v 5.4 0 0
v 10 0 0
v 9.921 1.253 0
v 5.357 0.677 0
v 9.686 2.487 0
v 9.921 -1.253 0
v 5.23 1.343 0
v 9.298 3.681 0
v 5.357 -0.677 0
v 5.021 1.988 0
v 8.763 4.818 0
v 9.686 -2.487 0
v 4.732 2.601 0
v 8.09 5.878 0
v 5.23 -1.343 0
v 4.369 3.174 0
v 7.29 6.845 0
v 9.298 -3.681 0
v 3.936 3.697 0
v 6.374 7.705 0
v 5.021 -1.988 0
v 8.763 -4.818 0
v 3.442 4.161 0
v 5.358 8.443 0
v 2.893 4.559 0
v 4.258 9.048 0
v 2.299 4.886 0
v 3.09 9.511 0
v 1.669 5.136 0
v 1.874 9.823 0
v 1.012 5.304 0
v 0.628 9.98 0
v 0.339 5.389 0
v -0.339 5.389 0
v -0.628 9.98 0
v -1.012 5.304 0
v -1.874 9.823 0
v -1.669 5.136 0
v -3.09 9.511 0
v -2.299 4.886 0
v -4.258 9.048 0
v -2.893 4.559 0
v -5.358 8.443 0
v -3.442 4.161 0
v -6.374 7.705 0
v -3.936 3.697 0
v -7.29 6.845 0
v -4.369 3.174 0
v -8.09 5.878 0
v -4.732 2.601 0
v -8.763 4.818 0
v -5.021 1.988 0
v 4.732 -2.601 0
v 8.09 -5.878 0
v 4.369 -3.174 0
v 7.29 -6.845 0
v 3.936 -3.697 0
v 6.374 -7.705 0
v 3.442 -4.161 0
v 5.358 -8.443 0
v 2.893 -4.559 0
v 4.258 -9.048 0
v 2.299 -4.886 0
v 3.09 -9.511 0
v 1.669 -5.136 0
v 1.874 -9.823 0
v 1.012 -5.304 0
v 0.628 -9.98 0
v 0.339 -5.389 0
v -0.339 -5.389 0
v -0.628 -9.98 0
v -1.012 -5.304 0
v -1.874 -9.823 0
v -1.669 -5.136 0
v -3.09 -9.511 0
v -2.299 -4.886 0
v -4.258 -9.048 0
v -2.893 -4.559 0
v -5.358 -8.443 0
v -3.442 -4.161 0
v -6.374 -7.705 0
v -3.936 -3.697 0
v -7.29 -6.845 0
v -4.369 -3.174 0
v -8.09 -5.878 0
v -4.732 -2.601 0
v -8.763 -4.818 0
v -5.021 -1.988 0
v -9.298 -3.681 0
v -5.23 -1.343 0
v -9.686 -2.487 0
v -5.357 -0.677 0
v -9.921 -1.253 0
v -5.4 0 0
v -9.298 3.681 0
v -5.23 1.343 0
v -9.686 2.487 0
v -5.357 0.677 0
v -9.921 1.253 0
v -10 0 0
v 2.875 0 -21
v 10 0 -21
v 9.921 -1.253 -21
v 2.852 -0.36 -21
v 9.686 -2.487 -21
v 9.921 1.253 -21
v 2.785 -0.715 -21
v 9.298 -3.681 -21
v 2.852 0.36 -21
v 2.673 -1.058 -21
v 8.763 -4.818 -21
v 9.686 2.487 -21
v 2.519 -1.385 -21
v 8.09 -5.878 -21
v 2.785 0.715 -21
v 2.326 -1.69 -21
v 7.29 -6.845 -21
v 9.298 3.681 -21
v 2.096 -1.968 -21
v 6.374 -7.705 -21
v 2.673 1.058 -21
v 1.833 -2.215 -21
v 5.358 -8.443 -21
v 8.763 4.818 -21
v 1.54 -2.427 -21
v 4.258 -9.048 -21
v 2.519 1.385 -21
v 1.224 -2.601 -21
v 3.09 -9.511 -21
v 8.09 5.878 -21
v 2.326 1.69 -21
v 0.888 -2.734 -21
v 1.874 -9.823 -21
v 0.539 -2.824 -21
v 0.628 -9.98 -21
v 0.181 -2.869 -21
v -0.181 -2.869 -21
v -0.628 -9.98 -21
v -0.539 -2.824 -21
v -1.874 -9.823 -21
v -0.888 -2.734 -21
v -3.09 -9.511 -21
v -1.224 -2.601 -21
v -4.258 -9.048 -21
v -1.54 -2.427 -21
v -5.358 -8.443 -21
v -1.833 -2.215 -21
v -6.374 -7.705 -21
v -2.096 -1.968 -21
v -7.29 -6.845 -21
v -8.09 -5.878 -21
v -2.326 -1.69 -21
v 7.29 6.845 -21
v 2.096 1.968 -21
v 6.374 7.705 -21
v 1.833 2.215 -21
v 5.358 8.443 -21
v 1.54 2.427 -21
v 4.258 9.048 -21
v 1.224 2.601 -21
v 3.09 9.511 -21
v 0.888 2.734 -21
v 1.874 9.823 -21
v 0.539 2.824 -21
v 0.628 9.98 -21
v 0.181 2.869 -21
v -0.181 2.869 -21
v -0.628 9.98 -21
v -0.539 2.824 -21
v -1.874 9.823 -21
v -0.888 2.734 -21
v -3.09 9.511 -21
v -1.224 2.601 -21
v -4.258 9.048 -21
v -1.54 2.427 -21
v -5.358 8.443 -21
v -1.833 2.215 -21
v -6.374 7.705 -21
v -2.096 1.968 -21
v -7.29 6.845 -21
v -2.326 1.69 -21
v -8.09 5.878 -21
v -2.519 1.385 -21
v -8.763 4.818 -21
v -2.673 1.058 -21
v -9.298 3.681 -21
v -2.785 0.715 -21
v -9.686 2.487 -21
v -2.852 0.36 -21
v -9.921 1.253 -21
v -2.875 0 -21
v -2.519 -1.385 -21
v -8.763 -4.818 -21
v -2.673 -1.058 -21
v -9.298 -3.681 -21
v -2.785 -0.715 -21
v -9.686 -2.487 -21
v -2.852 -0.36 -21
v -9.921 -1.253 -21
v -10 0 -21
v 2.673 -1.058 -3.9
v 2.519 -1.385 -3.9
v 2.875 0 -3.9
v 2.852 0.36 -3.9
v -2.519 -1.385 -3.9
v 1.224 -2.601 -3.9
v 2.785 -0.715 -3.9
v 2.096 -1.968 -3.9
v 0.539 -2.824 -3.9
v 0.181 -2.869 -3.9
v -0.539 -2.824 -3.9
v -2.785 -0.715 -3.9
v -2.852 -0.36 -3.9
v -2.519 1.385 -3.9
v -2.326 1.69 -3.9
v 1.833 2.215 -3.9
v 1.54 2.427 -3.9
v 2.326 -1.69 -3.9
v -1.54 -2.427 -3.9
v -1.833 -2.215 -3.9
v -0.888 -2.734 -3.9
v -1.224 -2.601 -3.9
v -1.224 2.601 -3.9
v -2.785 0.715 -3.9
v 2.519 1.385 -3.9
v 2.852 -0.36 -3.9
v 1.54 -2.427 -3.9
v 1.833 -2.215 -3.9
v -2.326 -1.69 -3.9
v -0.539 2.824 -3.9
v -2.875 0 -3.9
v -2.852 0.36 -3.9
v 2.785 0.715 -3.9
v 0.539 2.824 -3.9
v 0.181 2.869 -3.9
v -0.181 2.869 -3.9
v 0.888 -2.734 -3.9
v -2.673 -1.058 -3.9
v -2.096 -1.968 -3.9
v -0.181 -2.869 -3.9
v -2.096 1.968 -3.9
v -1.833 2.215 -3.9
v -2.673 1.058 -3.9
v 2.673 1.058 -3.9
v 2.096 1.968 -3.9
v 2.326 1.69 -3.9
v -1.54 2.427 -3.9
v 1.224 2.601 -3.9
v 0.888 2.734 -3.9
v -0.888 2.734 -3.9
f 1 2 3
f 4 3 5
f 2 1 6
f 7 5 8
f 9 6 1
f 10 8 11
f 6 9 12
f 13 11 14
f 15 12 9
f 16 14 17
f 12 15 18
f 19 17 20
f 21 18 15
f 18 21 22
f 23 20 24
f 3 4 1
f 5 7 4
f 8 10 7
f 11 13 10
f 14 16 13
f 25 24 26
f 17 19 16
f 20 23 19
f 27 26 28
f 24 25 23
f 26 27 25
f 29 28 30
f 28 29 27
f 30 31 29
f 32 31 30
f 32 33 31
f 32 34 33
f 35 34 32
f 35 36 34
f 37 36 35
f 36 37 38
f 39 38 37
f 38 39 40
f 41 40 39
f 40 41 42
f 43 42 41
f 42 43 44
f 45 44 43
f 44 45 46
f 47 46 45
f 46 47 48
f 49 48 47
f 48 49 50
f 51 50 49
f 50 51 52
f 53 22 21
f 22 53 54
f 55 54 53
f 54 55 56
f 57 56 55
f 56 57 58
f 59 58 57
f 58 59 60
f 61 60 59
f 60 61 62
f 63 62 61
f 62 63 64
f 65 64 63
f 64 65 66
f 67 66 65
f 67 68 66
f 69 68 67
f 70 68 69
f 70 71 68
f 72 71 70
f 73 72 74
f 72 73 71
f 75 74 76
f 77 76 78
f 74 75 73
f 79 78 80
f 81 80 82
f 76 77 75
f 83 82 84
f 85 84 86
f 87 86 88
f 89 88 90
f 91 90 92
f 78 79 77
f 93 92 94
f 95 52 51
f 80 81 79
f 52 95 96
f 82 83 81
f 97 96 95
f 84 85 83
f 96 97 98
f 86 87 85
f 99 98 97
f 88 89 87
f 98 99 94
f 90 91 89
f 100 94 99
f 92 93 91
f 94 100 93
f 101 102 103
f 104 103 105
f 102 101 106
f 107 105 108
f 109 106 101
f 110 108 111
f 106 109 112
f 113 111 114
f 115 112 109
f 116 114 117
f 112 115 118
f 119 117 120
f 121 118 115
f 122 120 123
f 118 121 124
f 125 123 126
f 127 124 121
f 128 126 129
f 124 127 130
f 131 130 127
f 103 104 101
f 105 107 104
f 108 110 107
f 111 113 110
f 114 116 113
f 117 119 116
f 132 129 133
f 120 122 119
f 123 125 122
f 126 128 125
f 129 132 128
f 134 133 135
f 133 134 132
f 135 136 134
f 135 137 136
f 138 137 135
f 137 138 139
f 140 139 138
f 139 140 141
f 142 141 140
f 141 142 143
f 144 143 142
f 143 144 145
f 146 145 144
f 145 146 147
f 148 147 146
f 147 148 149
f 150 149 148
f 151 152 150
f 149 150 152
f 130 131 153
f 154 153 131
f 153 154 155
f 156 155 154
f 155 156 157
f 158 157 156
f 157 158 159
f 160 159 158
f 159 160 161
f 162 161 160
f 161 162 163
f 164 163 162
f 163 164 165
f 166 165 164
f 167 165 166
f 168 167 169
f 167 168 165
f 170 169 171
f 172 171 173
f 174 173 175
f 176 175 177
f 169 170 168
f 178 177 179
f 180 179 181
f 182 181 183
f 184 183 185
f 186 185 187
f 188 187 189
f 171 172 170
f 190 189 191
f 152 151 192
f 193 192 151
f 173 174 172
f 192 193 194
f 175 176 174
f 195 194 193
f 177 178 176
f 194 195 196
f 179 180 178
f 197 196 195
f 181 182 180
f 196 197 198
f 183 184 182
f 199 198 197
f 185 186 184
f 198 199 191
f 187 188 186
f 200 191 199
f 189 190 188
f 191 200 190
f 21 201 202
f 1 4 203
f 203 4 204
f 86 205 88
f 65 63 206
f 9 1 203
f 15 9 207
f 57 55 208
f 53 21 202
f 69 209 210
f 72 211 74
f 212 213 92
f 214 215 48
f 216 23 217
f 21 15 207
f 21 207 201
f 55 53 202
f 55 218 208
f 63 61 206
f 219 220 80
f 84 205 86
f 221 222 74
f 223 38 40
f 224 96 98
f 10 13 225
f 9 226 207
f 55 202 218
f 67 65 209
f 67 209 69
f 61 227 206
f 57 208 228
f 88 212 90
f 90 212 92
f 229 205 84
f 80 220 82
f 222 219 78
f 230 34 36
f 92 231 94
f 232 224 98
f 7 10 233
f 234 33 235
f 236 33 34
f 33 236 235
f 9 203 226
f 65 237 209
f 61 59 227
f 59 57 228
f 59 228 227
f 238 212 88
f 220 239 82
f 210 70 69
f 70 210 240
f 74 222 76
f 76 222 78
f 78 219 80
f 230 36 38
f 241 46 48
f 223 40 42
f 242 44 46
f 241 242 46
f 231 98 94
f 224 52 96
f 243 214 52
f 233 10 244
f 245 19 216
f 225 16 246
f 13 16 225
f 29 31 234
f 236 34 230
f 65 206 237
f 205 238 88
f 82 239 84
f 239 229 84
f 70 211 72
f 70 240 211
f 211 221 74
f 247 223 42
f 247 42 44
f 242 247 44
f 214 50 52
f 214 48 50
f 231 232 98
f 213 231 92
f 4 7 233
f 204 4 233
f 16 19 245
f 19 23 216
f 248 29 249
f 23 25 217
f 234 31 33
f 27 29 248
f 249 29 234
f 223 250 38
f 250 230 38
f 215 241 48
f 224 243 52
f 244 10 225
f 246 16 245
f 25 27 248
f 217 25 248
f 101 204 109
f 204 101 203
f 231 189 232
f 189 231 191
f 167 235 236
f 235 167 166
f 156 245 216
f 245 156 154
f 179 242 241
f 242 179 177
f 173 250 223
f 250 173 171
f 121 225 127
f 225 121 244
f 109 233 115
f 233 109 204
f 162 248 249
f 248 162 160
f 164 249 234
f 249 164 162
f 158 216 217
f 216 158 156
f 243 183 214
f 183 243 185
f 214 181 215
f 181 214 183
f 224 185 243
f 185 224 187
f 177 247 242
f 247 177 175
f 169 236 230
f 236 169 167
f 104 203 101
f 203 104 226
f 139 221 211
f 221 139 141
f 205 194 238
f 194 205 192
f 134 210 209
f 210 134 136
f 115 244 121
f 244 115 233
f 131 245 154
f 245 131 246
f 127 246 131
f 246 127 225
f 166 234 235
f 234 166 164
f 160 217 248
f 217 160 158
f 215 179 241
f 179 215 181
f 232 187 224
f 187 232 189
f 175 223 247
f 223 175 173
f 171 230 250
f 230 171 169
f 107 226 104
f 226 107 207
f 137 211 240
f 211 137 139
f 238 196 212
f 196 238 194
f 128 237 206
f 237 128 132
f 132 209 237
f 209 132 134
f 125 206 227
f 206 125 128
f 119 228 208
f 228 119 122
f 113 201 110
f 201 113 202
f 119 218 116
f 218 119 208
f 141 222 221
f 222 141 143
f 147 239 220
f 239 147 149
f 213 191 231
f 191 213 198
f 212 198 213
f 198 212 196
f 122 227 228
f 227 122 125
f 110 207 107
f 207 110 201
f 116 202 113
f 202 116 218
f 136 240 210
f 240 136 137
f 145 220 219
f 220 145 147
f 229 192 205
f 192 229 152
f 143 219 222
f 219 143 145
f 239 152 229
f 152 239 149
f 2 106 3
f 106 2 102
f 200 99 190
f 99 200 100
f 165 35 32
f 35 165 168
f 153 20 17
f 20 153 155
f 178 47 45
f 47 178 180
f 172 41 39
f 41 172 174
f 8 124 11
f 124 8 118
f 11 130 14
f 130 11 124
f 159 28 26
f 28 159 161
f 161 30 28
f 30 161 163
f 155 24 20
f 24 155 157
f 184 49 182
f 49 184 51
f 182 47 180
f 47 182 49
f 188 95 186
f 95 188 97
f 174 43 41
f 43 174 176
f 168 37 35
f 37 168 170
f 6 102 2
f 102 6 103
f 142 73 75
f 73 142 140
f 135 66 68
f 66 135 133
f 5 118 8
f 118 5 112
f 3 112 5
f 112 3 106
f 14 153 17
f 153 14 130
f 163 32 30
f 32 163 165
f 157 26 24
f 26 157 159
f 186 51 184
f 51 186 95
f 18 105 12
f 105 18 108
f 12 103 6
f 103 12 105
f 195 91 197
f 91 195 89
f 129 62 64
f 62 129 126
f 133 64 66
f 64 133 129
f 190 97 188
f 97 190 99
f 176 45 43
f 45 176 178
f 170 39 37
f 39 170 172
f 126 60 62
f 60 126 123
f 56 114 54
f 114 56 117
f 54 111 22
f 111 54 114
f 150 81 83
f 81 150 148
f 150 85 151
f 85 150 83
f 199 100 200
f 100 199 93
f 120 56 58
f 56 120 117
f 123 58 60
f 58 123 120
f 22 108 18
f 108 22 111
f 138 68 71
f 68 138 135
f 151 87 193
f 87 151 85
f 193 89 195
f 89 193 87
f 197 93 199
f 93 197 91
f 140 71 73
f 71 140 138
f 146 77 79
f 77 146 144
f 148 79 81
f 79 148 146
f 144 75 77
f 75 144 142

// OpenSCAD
$fn = 50;


difference() {
	union() {
		translate(v = [0, 0, -21.0000000000]) {
			cylinder(h = 21, r = 10.0000000000);
		}
		cylinder(h = 0, r = 16.0000000000);
	}
	union() {
		translate(v = [0, 0, 0]) {
			rotate(a = [0, 0, 0]) {
				difference() {
					union() {
						#translate(v = [0, 0, -21.0000000000]) {
							cylinder(h = 21, r = 2.6000000000);
						}
						#translate(v = [0, 0, -3.9000000000]) {
							cylinder(h = 3.9000000000, r1 = 2.8750000000, r2 = 5.4000000000);
						}
						#translate(v = [0, 0, -21.0000000000]) {
							cylinder(h = 21, r = 2.8750000000);
						}
						#translate(v = [0, 0, -21.0000000000]) {
							cylinder(h = 21, r = 2.6000000000);
						}
					}
					union();
				}
			}
		}
	}
}
